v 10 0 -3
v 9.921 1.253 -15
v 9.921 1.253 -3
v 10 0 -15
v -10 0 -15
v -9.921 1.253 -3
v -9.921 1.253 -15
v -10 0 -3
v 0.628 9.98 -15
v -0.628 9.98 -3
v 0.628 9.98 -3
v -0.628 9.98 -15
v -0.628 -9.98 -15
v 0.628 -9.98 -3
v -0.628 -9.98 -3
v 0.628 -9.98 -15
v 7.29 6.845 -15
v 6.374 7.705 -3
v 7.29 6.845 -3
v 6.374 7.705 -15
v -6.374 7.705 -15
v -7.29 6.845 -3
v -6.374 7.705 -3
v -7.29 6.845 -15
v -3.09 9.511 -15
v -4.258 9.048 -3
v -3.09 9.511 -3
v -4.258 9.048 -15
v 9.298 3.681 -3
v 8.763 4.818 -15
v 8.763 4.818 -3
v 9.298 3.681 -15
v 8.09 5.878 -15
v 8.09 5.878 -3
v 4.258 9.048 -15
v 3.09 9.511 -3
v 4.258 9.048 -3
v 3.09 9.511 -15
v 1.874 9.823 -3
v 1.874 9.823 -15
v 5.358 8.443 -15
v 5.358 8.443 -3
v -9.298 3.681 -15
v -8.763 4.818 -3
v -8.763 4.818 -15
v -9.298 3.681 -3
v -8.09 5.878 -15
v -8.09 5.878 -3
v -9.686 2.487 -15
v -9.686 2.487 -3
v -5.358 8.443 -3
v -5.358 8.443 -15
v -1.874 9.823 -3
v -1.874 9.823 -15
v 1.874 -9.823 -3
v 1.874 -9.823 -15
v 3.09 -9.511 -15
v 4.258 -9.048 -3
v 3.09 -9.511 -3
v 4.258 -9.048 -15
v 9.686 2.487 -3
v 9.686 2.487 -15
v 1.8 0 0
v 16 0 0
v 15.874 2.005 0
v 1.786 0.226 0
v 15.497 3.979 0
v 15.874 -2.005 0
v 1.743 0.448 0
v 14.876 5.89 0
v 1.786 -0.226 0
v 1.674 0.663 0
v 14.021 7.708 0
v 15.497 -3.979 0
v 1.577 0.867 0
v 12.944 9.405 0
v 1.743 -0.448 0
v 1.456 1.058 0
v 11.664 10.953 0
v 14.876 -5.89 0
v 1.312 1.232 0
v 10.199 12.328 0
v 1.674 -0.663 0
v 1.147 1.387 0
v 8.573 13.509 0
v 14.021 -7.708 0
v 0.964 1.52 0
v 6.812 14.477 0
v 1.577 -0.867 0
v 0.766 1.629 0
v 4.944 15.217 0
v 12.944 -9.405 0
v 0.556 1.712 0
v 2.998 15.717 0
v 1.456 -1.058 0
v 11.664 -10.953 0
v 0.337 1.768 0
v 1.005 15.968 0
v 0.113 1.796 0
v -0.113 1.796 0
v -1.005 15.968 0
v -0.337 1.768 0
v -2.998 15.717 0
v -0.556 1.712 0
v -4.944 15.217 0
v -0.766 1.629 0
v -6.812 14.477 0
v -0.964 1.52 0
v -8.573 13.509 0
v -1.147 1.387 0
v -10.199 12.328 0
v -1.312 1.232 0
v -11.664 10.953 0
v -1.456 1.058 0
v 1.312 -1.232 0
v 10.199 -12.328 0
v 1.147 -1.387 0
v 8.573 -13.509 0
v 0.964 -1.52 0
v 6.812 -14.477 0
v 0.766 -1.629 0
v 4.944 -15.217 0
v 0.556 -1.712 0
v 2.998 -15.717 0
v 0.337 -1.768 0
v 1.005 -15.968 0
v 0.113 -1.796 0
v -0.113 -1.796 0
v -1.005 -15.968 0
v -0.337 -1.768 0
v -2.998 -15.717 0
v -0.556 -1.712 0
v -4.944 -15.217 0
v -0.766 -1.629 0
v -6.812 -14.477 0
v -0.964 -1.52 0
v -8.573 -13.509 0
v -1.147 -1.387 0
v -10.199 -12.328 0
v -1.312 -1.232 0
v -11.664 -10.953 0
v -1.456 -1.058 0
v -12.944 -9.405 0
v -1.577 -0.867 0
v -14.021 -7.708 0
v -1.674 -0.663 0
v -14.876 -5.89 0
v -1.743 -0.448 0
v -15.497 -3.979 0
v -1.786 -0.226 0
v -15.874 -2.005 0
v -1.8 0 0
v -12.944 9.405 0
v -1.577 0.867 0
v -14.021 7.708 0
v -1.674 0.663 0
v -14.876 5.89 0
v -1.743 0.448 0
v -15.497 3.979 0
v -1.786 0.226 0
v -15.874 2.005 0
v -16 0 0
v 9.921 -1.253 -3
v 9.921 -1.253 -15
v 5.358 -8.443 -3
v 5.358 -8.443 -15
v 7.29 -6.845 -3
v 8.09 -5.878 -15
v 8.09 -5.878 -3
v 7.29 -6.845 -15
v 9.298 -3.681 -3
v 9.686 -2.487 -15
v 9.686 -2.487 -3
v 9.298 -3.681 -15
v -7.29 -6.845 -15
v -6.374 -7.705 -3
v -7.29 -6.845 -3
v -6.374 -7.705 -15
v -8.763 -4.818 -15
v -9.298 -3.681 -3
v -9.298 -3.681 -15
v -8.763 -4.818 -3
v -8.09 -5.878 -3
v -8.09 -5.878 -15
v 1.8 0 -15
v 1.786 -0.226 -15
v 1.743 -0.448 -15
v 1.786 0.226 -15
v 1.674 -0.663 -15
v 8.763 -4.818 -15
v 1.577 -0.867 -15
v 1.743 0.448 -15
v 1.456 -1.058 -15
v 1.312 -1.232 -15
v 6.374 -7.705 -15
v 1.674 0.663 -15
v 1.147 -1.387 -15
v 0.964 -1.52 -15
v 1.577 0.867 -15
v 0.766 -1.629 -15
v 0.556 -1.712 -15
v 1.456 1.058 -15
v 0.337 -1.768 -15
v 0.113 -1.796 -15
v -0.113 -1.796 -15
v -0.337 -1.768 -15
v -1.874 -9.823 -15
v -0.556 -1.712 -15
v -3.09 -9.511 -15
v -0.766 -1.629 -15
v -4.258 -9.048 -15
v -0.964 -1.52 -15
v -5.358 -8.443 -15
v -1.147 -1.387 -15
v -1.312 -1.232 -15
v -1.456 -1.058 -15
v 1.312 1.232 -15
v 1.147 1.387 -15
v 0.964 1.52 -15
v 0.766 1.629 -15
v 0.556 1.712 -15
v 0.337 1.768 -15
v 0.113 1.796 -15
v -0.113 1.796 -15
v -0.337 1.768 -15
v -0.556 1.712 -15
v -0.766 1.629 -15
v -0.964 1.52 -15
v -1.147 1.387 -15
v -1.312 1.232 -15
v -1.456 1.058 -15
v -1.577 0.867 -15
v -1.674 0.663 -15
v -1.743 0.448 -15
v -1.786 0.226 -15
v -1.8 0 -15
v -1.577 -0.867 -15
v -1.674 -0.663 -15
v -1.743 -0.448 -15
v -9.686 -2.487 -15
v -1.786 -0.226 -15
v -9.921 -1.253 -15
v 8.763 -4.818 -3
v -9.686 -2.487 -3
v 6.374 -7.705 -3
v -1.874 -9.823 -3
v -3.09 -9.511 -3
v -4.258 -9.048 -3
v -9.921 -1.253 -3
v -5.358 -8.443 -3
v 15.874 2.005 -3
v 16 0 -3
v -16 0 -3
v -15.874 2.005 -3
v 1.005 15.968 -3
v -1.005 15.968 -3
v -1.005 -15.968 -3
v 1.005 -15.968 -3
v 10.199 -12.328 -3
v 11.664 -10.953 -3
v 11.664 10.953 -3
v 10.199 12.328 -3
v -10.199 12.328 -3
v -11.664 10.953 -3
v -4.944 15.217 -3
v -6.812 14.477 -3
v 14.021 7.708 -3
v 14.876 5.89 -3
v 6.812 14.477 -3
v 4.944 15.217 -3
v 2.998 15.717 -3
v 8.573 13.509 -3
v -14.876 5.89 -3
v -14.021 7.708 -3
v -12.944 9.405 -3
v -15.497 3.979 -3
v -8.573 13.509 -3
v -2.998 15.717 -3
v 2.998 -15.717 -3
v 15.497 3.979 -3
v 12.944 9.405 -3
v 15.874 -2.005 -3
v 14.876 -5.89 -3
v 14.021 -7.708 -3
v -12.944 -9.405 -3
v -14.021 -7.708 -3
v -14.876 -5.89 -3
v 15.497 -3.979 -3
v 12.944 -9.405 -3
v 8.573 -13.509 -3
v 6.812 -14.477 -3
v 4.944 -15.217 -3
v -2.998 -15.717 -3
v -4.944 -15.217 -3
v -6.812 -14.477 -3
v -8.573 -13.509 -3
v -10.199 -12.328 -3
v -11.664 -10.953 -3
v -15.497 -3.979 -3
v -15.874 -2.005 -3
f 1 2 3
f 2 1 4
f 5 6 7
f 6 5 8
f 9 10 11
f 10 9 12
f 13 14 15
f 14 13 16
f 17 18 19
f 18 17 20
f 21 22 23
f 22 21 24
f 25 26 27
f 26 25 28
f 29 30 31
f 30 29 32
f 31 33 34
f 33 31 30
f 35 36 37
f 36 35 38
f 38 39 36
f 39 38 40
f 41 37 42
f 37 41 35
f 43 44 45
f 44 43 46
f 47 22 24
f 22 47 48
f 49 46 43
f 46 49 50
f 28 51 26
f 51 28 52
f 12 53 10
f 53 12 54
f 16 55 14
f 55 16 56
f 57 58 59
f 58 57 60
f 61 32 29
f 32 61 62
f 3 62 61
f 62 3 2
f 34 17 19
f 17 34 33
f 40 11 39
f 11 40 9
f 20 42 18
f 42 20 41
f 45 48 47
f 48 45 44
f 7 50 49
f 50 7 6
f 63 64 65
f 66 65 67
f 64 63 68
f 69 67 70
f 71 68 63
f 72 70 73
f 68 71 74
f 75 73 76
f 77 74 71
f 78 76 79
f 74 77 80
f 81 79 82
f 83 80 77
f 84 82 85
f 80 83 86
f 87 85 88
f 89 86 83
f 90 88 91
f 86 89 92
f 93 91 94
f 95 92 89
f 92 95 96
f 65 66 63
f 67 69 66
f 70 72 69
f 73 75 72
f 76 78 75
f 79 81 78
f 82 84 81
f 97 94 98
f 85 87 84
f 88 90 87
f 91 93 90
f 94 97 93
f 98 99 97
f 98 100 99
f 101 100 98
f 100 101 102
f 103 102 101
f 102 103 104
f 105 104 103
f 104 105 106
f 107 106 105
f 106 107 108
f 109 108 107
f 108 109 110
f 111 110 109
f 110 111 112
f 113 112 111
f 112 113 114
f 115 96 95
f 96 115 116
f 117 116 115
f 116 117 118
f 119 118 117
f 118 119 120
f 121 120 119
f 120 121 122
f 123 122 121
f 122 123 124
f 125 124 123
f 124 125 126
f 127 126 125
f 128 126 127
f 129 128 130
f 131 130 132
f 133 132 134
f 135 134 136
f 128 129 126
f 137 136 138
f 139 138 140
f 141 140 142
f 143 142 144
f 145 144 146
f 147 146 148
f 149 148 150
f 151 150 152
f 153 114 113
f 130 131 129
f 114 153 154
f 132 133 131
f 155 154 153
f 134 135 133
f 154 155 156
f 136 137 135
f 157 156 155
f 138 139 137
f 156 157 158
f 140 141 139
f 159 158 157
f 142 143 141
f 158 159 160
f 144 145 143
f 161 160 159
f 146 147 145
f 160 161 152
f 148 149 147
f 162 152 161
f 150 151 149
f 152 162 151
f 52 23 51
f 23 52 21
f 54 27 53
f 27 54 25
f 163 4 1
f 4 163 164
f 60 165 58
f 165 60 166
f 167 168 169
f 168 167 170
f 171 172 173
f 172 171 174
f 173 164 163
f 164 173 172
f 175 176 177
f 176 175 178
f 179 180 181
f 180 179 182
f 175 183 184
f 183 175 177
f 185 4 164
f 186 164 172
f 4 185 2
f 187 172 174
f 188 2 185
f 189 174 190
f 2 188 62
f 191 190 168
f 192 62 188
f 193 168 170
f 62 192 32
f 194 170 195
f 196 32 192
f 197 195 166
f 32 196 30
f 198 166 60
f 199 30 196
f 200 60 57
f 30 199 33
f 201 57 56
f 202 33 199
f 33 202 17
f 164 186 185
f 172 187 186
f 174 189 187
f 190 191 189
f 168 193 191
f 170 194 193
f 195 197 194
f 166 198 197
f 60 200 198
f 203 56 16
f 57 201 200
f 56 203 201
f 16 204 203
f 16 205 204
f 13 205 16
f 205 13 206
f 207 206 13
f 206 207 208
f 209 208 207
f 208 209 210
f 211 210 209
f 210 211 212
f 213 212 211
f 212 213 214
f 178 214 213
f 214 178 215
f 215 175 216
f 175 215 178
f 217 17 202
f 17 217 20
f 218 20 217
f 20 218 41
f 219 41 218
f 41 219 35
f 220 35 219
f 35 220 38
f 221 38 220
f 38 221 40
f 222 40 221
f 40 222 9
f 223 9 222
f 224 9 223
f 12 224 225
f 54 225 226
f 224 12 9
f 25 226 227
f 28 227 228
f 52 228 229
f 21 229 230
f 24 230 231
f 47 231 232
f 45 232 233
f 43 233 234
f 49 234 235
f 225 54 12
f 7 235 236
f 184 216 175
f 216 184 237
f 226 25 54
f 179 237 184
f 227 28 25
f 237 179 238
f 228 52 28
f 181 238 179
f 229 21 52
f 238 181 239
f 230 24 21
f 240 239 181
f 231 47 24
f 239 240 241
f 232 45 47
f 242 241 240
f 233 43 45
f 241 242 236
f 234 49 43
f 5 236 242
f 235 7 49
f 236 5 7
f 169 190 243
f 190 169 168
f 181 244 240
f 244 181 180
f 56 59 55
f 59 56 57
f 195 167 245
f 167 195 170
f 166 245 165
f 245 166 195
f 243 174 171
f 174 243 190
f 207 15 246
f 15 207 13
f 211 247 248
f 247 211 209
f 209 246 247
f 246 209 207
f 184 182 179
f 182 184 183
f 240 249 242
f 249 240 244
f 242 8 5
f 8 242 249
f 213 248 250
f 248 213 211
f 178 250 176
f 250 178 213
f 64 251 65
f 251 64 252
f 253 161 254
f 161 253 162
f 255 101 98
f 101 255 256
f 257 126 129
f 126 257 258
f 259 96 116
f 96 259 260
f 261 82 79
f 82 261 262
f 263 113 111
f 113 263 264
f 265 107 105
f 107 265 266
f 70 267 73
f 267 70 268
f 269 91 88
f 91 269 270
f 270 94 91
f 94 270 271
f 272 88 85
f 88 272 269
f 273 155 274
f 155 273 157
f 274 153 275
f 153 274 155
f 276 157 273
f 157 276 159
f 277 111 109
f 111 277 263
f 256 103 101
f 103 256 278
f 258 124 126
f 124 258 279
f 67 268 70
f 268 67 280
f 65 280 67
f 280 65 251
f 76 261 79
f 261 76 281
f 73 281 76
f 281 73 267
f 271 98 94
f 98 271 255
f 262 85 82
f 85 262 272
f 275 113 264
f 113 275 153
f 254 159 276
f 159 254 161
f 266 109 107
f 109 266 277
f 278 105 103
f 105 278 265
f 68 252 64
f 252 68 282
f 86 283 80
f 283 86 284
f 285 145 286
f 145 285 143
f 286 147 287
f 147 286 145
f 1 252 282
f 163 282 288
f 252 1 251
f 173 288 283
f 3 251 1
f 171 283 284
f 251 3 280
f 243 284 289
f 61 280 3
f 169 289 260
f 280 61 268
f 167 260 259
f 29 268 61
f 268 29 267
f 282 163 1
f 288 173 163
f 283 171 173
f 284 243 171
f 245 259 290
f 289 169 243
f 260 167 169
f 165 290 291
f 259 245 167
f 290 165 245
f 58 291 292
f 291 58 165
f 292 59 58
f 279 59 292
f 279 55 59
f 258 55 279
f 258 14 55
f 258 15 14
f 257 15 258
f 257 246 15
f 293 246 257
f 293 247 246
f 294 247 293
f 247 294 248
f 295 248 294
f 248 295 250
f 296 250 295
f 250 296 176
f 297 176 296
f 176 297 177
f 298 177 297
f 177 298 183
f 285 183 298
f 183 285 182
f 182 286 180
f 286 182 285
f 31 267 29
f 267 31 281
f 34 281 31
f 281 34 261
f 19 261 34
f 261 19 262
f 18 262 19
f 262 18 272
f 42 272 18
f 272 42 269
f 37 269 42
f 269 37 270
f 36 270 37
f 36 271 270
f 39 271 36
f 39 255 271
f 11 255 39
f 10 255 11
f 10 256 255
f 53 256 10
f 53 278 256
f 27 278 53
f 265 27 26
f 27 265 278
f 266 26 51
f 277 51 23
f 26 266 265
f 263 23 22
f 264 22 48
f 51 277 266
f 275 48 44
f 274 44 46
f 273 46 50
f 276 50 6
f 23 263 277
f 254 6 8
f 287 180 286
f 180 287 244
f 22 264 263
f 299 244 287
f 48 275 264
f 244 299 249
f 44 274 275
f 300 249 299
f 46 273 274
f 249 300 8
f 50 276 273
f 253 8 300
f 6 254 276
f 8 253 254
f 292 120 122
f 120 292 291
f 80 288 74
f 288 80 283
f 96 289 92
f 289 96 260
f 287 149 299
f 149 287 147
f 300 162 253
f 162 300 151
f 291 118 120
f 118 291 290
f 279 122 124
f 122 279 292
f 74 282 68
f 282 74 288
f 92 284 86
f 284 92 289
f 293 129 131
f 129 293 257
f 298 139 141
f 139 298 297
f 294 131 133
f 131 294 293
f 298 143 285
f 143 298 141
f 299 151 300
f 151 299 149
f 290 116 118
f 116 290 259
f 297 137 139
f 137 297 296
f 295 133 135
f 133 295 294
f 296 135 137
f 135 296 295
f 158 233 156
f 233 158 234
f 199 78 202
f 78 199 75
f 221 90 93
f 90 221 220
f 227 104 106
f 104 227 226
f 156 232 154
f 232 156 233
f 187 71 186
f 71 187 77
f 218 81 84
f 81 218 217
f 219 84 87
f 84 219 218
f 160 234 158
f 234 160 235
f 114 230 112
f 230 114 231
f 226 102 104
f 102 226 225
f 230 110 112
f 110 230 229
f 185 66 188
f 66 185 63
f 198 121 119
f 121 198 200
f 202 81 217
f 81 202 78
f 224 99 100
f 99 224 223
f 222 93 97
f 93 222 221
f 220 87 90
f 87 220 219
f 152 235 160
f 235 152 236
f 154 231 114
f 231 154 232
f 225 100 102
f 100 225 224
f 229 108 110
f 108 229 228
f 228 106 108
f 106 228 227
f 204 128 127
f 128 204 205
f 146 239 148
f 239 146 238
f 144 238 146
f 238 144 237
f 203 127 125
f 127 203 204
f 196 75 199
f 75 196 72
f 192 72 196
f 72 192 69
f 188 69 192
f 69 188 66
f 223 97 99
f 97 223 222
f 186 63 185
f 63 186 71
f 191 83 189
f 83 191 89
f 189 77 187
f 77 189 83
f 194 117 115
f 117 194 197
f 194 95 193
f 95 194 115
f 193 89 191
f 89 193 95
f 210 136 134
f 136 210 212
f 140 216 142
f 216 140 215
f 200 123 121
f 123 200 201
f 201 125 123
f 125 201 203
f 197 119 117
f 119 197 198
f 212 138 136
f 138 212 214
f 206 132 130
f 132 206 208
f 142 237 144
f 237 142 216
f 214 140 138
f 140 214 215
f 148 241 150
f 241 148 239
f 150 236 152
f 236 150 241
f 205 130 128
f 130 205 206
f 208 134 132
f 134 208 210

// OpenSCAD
$fn = 50;


difference() {
	union() {
		translate(v = [0, 0, -15.0000000000]) {
			cylinder(h = 15, r = 10.0000000000);
		}
		translate(v = [0, 0, -3.0000000000]) {
			cylinder(h = 3, r = 16.0000000000);
		}
	}
	union() {
		#translate(v = [0, 0, -15]) {
			cylinder(h = 15, r = 1.8000000000);
		}
	}
}
